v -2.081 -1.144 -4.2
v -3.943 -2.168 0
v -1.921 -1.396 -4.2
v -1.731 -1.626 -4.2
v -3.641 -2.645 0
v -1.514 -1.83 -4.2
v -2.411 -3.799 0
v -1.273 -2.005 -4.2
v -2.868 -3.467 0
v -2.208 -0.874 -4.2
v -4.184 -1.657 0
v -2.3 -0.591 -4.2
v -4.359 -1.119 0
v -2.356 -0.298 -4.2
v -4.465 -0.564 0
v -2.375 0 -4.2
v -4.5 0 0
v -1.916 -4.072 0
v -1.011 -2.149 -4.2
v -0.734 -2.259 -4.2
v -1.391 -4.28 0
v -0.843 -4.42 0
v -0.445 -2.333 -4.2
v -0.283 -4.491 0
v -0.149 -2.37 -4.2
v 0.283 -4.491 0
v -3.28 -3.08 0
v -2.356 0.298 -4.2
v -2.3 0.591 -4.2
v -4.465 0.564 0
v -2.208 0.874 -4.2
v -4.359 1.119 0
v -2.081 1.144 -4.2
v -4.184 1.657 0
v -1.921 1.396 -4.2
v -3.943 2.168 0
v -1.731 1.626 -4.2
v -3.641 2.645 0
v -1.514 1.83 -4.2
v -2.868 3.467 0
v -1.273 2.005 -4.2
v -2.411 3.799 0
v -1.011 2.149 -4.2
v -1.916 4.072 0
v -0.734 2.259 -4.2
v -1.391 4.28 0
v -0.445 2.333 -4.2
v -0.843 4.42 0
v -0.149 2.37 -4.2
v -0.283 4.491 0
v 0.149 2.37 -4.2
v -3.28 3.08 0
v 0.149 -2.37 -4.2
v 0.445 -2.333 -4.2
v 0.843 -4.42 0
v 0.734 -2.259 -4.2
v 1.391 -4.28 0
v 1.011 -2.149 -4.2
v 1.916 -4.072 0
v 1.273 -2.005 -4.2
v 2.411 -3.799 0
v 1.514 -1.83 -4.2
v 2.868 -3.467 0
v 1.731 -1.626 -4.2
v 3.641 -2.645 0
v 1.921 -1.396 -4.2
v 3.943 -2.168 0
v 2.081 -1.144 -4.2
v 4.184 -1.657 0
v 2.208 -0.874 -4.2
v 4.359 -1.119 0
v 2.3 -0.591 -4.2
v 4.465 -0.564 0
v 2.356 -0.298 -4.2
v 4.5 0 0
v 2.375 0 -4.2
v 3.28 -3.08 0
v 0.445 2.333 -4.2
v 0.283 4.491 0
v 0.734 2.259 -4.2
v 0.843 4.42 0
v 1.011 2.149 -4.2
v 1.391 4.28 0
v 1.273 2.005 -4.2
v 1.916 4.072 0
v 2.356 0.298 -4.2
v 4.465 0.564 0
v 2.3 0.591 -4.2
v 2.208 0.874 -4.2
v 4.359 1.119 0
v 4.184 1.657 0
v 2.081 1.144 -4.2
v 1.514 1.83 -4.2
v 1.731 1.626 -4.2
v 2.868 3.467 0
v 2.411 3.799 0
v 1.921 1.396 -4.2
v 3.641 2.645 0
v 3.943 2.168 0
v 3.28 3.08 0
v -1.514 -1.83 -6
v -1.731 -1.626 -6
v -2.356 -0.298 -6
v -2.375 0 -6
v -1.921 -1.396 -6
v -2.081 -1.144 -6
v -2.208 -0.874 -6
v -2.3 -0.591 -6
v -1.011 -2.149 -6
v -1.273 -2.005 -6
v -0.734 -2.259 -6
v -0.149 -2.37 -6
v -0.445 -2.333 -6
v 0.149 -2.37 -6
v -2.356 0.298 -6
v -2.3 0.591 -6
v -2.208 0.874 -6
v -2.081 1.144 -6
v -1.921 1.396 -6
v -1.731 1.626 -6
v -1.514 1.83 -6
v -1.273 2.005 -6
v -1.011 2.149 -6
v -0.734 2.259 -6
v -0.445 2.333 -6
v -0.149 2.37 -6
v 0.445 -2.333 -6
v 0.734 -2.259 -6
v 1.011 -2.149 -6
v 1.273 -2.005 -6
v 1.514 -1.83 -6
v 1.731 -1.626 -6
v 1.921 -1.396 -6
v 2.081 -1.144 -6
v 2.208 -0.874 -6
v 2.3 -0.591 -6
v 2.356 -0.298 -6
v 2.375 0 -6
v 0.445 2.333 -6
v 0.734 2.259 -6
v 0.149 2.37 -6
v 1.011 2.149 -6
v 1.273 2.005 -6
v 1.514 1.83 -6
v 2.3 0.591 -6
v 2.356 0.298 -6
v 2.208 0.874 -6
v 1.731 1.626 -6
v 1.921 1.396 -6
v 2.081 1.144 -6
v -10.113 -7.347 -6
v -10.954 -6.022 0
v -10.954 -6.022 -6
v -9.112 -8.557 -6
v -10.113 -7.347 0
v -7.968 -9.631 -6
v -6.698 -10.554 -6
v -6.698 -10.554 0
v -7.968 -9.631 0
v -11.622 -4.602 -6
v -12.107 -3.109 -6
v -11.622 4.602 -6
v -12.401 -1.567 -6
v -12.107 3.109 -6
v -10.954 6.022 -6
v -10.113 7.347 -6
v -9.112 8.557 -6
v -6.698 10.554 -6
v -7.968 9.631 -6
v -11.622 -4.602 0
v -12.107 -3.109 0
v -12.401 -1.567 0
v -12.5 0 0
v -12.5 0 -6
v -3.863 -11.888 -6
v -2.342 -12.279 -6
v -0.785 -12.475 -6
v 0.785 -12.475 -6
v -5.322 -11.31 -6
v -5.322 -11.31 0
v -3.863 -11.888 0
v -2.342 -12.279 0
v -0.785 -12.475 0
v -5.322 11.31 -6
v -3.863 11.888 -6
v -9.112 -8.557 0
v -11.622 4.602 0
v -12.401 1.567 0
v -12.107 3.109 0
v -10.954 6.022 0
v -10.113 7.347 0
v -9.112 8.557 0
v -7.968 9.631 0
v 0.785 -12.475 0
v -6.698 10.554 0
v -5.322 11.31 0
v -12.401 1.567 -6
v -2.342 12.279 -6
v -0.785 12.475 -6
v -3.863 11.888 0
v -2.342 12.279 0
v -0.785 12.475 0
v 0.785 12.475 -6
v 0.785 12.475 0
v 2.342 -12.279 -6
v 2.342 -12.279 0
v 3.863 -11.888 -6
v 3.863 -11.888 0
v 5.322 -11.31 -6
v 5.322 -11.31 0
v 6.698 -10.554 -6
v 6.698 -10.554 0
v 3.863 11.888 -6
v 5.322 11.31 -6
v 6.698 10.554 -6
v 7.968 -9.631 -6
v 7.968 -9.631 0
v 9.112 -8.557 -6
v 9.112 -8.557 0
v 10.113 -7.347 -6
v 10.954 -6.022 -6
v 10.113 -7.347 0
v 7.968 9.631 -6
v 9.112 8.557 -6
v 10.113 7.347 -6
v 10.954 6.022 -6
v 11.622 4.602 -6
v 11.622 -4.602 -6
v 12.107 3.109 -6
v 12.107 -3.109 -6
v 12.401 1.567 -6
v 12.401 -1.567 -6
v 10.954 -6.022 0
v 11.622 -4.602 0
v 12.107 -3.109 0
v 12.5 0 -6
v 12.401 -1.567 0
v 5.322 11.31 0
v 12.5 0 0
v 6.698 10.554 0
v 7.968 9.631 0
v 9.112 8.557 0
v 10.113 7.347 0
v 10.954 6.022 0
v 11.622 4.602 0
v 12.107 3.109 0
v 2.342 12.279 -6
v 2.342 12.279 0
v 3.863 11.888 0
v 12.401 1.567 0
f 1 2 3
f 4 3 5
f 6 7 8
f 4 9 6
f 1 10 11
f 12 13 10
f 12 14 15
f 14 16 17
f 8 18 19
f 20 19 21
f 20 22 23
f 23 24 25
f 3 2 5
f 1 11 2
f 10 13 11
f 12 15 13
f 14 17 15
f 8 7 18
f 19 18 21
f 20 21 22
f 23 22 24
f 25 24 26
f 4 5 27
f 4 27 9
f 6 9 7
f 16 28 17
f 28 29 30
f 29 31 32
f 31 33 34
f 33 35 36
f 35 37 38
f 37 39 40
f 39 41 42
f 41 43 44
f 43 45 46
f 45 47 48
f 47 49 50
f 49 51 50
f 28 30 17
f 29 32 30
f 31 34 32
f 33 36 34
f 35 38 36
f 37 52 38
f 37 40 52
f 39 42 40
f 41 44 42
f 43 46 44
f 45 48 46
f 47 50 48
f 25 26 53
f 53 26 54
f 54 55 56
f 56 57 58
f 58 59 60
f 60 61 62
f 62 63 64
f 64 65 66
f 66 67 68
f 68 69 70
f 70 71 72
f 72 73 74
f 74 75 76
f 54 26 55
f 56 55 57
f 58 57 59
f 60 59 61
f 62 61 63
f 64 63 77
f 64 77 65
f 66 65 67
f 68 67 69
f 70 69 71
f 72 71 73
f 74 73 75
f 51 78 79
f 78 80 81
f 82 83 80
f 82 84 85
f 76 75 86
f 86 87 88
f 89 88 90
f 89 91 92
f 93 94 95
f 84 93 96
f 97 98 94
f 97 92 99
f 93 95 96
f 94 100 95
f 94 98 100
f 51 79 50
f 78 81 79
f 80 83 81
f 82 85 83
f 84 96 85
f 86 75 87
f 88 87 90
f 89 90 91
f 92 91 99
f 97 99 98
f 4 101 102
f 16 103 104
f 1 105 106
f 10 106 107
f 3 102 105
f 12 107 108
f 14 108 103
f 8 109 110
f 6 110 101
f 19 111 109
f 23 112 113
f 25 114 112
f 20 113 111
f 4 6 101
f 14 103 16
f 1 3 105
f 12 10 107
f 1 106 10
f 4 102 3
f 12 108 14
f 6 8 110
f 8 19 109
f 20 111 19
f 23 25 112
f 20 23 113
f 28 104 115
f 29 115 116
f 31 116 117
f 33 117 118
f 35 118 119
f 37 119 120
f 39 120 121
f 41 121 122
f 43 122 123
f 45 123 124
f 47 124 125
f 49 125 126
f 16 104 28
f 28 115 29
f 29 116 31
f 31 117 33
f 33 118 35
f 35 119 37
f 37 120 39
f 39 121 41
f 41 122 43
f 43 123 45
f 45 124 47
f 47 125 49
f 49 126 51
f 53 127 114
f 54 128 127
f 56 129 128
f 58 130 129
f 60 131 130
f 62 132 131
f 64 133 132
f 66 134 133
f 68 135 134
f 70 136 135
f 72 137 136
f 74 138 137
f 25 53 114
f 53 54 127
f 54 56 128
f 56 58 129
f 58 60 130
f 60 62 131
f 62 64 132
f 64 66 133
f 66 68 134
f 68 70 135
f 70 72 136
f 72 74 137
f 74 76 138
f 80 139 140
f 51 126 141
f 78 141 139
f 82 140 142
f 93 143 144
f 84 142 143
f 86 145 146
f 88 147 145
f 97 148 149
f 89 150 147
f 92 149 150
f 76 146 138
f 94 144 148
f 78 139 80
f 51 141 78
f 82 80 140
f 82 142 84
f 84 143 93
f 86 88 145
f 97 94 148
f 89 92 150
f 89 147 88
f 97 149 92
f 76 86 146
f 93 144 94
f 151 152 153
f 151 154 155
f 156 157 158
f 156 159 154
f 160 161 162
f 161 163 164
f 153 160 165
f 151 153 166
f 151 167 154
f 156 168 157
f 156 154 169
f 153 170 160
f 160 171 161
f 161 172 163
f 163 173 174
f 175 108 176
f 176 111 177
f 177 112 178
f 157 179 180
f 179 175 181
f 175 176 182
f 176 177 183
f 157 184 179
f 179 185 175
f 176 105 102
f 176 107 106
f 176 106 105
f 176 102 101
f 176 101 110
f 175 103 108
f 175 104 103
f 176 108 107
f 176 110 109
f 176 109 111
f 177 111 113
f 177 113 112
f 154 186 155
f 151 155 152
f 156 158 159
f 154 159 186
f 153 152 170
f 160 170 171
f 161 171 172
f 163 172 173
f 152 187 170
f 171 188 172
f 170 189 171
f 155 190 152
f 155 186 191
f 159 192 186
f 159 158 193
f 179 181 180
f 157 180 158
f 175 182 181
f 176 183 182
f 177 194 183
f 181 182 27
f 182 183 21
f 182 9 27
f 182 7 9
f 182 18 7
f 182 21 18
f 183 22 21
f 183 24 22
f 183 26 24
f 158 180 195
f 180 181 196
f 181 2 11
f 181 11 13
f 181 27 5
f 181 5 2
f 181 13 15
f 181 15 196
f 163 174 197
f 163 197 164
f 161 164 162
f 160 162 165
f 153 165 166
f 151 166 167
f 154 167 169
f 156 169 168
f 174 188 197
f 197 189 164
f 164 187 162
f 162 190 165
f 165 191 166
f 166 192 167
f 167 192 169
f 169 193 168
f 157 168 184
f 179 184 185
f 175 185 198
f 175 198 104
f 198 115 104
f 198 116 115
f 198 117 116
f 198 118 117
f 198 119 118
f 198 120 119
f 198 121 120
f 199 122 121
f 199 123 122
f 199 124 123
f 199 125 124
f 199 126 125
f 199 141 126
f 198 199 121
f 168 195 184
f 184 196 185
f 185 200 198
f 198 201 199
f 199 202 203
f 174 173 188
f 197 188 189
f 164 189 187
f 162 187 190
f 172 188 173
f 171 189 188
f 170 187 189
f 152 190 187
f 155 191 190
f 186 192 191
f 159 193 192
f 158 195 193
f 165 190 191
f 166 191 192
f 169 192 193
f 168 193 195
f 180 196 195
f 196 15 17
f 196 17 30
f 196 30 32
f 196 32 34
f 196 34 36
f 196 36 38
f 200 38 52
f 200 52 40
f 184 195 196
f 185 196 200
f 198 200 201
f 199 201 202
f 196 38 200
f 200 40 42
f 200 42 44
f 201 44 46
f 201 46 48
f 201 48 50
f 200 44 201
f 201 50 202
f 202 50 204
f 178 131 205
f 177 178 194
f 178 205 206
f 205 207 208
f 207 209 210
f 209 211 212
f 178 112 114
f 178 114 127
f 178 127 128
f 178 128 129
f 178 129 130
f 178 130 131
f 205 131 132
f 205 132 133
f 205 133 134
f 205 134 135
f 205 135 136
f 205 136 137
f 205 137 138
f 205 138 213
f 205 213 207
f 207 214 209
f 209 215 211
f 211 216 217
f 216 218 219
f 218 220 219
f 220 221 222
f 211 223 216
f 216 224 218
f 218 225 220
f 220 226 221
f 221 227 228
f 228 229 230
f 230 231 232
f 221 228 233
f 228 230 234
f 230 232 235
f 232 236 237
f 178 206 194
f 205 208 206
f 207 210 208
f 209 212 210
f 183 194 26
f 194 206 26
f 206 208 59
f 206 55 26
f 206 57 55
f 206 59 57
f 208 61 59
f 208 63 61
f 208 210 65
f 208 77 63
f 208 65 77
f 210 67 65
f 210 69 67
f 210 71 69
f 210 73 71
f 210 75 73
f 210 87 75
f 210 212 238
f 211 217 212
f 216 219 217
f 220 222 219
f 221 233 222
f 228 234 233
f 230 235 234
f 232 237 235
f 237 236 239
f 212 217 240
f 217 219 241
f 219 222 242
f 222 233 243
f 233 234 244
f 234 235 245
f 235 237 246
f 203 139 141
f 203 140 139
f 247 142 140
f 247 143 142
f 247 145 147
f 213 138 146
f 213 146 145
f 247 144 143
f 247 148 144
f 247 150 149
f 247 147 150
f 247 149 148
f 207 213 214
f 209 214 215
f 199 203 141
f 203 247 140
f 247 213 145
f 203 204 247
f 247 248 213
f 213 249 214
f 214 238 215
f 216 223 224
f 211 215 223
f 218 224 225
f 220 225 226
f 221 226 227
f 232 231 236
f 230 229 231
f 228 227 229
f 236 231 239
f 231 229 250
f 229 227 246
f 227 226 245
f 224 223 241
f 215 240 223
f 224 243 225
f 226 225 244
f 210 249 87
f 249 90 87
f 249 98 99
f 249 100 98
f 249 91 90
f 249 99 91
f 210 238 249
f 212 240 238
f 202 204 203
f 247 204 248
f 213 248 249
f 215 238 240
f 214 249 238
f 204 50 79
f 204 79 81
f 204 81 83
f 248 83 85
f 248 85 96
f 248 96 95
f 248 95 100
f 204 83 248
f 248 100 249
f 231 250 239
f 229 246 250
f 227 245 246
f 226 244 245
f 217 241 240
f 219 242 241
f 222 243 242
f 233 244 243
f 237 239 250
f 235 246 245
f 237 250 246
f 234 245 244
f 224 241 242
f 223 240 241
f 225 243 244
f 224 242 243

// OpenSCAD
$fn = 50;

difference() {
	union() {
		translate(v = [0, 0, -6.0]) {
			cylinder(h = 6, r = 12.5);
		}
	}
	union() {
		translate(v = [0, 0, 0]) {
			rotate(a = [0, 0, 0]) {
				difference() {
					union() {
						translate(v = [0, 0, -9.0]) {
							cylinder(h = 9, r = 2.25);
						}
						translate(v = [0, 0, -4.2]) {
							cylinder(h = 4.2, r1 = 2.375, r2 = 4.5);
						}
						translate(v = [0, 0, -9.0]) {
							cylinder(h = 9, r = 2.375);
						}
						translate(v = [0, 0, -9.0]) {
							cylinder(h = 9, r = 2.25);
						}
					}
					union();
				}
			}
		}
	}
}
